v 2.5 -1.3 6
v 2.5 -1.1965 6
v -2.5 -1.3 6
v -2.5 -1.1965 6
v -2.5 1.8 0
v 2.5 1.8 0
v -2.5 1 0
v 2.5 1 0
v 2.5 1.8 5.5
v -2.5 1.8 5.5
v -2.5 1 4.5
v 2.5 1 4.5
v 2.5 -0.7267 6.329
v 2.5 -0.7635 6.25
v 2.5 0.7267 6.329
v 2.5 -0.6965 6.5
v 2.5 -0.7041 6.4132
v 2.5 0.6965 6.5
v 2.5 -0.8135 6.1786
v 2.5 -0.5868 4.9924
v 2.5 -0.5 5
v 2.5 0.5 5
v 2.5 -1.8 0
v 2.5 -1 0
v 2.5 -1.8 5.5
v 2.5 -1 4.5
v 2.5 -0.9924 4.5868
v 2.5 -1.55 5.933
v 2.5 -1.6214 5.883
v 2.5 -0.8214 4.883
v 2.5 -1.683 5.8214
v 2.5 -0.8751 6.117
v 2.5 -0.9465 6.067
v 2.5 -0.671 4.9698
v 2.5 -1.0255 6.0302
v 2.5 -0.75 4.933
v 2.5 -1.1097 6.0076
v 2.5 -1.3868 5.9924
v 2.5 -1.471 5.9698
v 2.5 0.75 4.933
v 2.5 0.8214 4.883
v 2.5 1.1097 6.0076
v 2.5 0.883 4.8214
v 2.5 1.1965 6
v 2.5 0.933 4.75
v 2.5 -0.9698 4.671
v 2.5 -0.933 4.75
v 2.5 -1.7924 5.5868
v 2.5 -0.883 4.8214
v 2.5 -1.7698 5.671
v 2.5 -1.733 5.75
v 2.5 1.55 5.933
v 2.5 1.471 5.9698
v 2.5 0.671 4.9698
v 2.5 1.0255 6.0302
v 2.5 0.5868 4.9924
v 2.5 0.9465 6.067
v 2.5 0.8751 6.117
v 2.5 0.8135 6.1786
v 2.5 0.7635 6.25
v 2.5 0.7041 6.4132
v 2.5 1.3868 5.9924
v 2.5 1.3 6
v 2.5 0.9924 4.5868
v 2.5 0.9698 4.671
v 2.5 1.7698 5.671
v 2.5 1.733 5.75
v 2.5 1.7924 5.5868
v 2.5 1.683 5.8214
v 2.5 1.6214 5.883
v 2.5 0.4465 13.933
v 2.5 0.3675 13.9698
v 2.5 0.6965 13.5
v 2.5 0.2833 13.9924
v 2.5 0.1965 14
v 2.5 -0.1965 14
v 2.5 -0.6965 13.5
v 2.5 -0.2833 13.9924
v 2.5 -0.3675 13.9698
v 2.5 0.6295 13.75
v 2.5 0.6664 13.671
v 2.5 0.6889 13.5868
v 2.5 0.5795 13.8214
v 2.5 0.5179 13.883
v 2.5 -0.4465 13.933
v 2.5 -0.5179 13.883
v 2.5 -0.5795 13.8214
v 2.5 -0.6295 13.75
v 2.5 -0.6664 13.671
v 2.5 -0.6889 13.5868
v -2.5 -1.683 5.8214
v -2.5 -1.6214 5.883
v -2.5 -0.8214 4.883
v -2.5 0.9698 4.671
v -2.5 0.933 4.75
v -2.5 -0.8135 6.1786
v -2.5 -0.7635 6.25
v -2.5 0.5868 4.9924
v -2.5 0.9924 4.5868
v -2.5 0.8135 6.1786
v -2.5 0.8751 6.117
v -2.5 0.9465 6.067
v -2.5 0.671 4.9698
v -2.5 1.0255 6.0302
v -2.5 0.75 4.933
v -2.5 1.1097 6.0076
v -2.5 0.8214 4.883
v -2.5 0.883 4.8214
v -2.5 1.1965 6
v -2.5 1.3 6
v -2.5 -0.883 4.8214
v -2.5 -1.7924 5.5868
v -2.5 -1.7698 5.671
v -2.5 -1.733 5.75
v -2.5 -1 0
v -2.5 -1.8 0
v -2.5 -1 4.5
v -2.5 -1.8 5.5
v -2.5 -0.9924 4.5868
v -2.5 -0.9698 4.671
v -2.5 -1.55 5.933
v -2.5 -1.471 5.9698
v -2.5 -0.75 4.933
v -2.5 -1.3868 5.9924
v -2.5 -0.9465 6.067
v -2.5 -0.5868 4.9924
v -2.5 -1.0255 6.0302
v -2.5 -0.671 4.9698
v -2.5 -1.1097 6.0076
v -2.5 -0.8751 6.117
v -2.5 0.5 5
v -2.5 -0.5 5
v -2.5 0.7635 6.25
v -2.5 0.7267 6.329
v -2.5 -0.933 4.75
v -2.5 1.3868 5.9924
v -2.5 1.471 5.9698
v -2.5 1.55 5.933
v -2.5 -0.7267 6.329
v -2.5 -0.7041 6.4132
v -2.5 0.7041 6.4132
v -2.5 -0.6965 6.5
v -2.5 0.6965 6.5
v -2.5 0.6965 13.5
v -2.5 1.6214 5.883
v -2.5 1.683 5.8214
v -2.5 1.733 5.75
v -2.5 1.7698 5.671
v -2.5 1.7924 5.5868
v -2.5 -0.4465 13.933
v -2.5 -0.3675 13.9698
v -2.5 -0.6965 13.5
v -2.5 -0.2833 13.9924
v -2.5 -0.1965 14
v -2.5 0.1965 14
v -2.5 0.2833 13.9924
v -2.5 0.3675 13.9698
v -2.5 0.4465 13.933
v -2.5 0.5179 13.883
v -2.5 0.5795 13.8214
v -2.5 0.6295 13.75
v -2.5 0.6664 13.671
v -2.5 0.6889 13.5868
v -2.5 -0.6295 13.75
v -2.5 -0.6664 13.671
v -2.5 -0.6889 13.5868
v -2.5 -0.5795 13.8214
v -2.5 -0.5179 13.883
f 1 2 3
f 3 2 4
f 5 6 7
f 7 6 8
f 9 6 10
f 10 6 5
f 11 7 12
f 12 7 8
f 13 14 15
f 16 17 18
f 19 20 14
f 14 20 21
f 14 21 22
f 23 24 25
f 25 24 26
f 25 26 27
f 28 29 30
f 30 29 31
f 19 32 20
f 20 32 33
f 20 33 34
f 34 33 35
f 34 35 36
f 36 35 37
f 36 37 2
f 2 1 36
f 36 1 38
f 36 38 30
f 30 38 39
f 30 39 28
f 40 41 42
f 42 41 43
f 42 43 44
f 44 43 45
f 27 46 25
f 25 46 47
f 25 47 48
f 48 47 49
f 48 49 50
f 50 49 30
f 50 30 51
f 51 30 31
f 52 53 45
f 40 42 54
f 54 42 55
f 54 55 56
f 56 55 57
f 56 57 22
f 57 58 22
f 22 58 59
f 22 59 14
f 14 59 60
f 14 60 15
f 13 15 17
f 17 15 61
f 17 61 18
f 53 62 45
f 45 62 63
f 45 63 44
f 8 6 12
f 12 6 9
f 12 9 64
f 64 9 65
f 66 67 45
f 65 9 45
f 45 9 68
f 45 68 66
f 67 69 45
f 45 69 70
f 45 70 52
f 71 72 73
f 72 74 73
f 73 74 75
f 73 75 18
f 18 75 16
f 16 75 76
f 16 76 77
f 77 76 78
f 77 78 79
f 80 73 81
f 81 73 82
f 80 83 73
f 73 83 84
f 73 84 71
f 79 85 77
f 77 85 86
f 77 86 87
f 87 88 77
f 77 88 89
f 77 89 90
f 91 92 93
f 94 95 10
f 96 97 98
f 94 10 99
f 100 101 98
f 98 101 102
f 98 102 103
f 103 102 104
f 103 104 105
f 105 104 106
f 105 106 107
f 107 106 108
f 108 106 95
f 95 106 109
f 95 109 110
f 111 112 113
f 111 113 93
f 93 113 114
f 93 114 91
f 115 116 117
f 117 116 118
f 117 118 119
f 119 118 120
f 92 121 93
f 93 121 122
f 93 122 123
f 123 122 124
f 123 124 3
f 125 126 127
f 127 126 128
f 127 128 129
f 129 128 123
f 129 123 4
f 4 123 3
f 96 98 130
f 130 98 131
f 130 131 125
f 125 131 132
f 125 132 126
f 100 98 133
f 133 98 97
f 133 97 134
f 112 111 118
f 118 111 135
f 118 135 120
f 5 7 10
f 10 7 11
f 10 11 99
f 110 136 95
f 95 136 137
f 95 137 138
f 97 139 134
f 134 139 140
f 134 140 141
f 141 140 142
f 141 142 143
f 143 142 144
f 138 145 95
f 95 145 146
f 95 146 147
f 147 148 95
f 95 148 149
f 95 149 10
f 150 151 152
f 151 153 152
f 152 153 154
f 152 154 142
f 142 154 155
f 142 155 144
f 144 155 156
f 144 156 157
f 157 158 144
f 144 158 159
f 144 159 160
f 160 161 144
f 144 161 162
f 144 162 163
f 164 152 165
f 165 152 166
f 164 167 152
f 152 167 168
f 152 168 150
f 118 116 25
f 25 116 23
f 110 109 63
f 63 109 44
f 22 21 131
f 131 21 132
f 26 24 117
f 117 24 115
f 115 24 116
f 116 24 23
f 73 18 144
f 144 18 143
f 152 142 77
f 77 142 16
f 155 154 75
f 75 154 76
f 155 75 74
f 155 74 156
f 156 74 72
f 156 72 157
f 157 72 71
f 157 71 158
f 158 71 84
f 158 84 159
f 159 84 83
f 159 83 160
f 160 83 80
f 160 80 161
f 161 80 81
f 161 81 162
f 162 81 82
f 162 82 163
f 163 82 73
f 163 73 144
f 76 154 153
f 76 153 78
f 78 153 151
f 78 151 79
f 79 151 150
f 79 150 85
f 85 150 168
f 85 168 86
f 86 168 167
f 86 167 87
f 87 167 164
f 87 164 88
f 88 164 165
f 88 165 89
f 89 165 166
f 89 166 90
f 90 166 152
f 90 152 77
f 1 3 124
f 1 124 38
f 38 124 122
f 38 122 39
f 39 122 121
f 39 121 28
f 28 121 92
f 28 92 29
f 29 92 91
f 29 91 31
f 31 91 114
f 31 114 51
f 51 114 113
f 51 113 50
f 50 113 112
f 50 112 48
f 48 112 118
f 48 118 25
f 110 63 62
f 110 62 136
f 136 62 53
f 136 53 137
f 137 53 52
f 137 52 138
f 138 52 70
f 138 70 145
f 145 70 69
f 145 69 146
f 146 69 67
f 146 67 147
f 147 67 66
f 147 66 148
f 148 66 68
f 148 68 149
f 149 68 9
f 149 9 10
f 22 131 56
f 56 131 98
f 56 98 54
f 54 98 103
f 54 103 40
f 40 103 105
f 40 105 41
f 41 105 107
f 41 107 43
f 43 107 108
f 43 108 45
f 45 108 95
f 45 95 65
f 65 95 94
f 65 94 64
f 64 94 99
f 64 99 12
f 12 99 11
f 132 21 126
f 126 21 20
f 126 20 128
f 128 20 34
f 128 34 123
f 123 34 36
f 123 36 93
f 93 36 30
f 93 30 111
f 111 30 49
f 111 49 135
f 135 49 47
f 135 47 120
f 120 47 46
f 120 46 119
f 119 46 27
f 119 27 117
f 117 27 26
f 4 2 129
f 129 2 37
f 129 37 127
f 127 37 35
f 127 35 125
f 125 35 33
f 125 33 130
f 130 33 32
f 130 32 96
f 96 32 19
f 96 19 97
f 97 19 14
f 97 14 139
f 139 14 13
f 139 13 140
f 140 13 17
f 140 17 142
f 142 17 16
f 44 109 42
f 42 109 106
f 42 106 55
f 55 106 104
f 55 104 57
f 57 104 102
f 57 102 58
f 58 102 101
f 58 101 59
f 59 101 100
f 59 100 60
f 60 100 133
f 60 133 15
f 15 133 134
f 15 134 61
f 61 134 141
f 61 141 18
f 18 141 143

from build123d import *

# Parameters (mm, degrees)
SKETCH_1_W          = 6.6
SKETCH_1_H          = 3.6
SKETCH_1_W_2        = 5
SKETCH_1_H_2        = 2
EXTRUDE_1_DEPTH     = 5
CUT_EXTRUDE_2_REACH = 8.255
SKETCH_2_W          = 0.8
SKETCH_2_H          = 3.6
SKETCH_3_W          = 5
SKETCH_3_H          = 3.6
EXTRUDE_1_2_DEPTH   = 1
SKETCH_4_W          = 5
SKETCH_4_H          = 1.393036208
EXTRUDE_2_DEPTH     = 8
FILLET_1_R          = 0.5


with BuildPart() as part:
    # Эскиз1 → Extrude 1 (new body)
    with BuildSketch(Plane.XY):
        Rectangle(SKETCH_1_W, SKETCH_1_H)
        Rectangle(SKETCH_1_W_2, SKETCH_1_H_2, mode=Mode.SUBTRACT)
    extrude(amount=EXTRUDE_1_DEPTH)

    # Эскиз2 → Вырез-Вытянуть2 (cut, up to next)
    with BuildSketch(Plane.XY.offset(5), mode=Mode.PRIVATE) as cut_extrude_2_sk1:
        with Locations((-2.9, 0)):
            Rectangle(SKETCH_2_W, SKETCH_2_H)
    cut_extrude_2_tool1 = extrude(cut_extrude_2_sk1.sketch, amount=-CUT_EXTRUDE_2_REACH, mode=Mode.PRIVATE) & part.part
    # Эскиз2 → Вырез-Вытянуть2 (cut, up to next)
    with BuildSketch(Plane.XY.offset(5), mode=Mode.PRIVATE) as cut_extrude_2_sk2:
        with Locations((2.9, 0)):
            Rectangle(SKETCH_2_W, SKETCH_2_H)
    cut_extrude_2_tool2 = extrude(cut_extrude_2_sk2.sketch, amount=-CUT_EXTRUDE_2_REACH, mode=Mode.PRIVATE) & part.part
    add(cut_extrude_2_tool1.solids().sort_by_distance((-2.9, 0, 5))[0], mode=Mode.SUBTRACT)
    add(cut_extrude_2_tool2.solids().sort_by_distance((2.9, 0, 5))[0], mode=Mode.SUBTRACT)


with BuildPart() as cut_extrude_2_piece_1:
    # of the separate pieces the step leaves, piece 1, a body of its own (cut_extrude_2_pieces)
    add(part.part.solids().sort_by_distance((2.5, -1.8, 0))[0])



with BuildPart() as cut_extrude_2_piece_2:
    # of the separate pieces the step leaves, piece 2, a body of its own (cut_extrude_2_pieces)
    add(part.part.solids().sort_by_distance((-2.5, 1.8, 0))[0])


with BuildPart() as cut_extrude_2_piece_1_1:
    add(cut_extrude_2_piece_1.part)

    add(cut_extrude_2_piece_2.part)  # Extrude 1 2 merges Вырез-Вытянуть2 piece 2
    # Эскиз3 → Extrude 1 2 (add)
    with BuildSketch(Plane.XY.offset(5)):
        Rectangle(SKETCH_3_W, SKETCH_3_H)
    extrude(amount=EXTRUDE_1_2_DEPTH)

    # Эскиз4 → Бобышка-Вытянуть2 (add)
    with BuildSketch(Plane.XY.offset(6)):
        Rectangle(SKETCH_4_W, SKETCH_4_H)
    extrude(amount=EXTRUDE_2_DEPTH)

    # Скругление1
    fillet_1_edges = [cut_extrude_2_piece_1_1.edges().sort_by_distance(p)[0] for p in [
        (0, -1.8, 6),
        (0, 1.8, 6),
        (0, 1, 5),
        (0, -1, 5),
        (0, 0.696518104, 6),
        (0, -0.696518104, 6),
        (0, 0.696518104, 14),
        (0, -0.696518104, 14),
    ]]
    fillet(fillet_1_edges, radius=FILLET_1_R)


solid = cut_extrude_2_piece_1_1.part
